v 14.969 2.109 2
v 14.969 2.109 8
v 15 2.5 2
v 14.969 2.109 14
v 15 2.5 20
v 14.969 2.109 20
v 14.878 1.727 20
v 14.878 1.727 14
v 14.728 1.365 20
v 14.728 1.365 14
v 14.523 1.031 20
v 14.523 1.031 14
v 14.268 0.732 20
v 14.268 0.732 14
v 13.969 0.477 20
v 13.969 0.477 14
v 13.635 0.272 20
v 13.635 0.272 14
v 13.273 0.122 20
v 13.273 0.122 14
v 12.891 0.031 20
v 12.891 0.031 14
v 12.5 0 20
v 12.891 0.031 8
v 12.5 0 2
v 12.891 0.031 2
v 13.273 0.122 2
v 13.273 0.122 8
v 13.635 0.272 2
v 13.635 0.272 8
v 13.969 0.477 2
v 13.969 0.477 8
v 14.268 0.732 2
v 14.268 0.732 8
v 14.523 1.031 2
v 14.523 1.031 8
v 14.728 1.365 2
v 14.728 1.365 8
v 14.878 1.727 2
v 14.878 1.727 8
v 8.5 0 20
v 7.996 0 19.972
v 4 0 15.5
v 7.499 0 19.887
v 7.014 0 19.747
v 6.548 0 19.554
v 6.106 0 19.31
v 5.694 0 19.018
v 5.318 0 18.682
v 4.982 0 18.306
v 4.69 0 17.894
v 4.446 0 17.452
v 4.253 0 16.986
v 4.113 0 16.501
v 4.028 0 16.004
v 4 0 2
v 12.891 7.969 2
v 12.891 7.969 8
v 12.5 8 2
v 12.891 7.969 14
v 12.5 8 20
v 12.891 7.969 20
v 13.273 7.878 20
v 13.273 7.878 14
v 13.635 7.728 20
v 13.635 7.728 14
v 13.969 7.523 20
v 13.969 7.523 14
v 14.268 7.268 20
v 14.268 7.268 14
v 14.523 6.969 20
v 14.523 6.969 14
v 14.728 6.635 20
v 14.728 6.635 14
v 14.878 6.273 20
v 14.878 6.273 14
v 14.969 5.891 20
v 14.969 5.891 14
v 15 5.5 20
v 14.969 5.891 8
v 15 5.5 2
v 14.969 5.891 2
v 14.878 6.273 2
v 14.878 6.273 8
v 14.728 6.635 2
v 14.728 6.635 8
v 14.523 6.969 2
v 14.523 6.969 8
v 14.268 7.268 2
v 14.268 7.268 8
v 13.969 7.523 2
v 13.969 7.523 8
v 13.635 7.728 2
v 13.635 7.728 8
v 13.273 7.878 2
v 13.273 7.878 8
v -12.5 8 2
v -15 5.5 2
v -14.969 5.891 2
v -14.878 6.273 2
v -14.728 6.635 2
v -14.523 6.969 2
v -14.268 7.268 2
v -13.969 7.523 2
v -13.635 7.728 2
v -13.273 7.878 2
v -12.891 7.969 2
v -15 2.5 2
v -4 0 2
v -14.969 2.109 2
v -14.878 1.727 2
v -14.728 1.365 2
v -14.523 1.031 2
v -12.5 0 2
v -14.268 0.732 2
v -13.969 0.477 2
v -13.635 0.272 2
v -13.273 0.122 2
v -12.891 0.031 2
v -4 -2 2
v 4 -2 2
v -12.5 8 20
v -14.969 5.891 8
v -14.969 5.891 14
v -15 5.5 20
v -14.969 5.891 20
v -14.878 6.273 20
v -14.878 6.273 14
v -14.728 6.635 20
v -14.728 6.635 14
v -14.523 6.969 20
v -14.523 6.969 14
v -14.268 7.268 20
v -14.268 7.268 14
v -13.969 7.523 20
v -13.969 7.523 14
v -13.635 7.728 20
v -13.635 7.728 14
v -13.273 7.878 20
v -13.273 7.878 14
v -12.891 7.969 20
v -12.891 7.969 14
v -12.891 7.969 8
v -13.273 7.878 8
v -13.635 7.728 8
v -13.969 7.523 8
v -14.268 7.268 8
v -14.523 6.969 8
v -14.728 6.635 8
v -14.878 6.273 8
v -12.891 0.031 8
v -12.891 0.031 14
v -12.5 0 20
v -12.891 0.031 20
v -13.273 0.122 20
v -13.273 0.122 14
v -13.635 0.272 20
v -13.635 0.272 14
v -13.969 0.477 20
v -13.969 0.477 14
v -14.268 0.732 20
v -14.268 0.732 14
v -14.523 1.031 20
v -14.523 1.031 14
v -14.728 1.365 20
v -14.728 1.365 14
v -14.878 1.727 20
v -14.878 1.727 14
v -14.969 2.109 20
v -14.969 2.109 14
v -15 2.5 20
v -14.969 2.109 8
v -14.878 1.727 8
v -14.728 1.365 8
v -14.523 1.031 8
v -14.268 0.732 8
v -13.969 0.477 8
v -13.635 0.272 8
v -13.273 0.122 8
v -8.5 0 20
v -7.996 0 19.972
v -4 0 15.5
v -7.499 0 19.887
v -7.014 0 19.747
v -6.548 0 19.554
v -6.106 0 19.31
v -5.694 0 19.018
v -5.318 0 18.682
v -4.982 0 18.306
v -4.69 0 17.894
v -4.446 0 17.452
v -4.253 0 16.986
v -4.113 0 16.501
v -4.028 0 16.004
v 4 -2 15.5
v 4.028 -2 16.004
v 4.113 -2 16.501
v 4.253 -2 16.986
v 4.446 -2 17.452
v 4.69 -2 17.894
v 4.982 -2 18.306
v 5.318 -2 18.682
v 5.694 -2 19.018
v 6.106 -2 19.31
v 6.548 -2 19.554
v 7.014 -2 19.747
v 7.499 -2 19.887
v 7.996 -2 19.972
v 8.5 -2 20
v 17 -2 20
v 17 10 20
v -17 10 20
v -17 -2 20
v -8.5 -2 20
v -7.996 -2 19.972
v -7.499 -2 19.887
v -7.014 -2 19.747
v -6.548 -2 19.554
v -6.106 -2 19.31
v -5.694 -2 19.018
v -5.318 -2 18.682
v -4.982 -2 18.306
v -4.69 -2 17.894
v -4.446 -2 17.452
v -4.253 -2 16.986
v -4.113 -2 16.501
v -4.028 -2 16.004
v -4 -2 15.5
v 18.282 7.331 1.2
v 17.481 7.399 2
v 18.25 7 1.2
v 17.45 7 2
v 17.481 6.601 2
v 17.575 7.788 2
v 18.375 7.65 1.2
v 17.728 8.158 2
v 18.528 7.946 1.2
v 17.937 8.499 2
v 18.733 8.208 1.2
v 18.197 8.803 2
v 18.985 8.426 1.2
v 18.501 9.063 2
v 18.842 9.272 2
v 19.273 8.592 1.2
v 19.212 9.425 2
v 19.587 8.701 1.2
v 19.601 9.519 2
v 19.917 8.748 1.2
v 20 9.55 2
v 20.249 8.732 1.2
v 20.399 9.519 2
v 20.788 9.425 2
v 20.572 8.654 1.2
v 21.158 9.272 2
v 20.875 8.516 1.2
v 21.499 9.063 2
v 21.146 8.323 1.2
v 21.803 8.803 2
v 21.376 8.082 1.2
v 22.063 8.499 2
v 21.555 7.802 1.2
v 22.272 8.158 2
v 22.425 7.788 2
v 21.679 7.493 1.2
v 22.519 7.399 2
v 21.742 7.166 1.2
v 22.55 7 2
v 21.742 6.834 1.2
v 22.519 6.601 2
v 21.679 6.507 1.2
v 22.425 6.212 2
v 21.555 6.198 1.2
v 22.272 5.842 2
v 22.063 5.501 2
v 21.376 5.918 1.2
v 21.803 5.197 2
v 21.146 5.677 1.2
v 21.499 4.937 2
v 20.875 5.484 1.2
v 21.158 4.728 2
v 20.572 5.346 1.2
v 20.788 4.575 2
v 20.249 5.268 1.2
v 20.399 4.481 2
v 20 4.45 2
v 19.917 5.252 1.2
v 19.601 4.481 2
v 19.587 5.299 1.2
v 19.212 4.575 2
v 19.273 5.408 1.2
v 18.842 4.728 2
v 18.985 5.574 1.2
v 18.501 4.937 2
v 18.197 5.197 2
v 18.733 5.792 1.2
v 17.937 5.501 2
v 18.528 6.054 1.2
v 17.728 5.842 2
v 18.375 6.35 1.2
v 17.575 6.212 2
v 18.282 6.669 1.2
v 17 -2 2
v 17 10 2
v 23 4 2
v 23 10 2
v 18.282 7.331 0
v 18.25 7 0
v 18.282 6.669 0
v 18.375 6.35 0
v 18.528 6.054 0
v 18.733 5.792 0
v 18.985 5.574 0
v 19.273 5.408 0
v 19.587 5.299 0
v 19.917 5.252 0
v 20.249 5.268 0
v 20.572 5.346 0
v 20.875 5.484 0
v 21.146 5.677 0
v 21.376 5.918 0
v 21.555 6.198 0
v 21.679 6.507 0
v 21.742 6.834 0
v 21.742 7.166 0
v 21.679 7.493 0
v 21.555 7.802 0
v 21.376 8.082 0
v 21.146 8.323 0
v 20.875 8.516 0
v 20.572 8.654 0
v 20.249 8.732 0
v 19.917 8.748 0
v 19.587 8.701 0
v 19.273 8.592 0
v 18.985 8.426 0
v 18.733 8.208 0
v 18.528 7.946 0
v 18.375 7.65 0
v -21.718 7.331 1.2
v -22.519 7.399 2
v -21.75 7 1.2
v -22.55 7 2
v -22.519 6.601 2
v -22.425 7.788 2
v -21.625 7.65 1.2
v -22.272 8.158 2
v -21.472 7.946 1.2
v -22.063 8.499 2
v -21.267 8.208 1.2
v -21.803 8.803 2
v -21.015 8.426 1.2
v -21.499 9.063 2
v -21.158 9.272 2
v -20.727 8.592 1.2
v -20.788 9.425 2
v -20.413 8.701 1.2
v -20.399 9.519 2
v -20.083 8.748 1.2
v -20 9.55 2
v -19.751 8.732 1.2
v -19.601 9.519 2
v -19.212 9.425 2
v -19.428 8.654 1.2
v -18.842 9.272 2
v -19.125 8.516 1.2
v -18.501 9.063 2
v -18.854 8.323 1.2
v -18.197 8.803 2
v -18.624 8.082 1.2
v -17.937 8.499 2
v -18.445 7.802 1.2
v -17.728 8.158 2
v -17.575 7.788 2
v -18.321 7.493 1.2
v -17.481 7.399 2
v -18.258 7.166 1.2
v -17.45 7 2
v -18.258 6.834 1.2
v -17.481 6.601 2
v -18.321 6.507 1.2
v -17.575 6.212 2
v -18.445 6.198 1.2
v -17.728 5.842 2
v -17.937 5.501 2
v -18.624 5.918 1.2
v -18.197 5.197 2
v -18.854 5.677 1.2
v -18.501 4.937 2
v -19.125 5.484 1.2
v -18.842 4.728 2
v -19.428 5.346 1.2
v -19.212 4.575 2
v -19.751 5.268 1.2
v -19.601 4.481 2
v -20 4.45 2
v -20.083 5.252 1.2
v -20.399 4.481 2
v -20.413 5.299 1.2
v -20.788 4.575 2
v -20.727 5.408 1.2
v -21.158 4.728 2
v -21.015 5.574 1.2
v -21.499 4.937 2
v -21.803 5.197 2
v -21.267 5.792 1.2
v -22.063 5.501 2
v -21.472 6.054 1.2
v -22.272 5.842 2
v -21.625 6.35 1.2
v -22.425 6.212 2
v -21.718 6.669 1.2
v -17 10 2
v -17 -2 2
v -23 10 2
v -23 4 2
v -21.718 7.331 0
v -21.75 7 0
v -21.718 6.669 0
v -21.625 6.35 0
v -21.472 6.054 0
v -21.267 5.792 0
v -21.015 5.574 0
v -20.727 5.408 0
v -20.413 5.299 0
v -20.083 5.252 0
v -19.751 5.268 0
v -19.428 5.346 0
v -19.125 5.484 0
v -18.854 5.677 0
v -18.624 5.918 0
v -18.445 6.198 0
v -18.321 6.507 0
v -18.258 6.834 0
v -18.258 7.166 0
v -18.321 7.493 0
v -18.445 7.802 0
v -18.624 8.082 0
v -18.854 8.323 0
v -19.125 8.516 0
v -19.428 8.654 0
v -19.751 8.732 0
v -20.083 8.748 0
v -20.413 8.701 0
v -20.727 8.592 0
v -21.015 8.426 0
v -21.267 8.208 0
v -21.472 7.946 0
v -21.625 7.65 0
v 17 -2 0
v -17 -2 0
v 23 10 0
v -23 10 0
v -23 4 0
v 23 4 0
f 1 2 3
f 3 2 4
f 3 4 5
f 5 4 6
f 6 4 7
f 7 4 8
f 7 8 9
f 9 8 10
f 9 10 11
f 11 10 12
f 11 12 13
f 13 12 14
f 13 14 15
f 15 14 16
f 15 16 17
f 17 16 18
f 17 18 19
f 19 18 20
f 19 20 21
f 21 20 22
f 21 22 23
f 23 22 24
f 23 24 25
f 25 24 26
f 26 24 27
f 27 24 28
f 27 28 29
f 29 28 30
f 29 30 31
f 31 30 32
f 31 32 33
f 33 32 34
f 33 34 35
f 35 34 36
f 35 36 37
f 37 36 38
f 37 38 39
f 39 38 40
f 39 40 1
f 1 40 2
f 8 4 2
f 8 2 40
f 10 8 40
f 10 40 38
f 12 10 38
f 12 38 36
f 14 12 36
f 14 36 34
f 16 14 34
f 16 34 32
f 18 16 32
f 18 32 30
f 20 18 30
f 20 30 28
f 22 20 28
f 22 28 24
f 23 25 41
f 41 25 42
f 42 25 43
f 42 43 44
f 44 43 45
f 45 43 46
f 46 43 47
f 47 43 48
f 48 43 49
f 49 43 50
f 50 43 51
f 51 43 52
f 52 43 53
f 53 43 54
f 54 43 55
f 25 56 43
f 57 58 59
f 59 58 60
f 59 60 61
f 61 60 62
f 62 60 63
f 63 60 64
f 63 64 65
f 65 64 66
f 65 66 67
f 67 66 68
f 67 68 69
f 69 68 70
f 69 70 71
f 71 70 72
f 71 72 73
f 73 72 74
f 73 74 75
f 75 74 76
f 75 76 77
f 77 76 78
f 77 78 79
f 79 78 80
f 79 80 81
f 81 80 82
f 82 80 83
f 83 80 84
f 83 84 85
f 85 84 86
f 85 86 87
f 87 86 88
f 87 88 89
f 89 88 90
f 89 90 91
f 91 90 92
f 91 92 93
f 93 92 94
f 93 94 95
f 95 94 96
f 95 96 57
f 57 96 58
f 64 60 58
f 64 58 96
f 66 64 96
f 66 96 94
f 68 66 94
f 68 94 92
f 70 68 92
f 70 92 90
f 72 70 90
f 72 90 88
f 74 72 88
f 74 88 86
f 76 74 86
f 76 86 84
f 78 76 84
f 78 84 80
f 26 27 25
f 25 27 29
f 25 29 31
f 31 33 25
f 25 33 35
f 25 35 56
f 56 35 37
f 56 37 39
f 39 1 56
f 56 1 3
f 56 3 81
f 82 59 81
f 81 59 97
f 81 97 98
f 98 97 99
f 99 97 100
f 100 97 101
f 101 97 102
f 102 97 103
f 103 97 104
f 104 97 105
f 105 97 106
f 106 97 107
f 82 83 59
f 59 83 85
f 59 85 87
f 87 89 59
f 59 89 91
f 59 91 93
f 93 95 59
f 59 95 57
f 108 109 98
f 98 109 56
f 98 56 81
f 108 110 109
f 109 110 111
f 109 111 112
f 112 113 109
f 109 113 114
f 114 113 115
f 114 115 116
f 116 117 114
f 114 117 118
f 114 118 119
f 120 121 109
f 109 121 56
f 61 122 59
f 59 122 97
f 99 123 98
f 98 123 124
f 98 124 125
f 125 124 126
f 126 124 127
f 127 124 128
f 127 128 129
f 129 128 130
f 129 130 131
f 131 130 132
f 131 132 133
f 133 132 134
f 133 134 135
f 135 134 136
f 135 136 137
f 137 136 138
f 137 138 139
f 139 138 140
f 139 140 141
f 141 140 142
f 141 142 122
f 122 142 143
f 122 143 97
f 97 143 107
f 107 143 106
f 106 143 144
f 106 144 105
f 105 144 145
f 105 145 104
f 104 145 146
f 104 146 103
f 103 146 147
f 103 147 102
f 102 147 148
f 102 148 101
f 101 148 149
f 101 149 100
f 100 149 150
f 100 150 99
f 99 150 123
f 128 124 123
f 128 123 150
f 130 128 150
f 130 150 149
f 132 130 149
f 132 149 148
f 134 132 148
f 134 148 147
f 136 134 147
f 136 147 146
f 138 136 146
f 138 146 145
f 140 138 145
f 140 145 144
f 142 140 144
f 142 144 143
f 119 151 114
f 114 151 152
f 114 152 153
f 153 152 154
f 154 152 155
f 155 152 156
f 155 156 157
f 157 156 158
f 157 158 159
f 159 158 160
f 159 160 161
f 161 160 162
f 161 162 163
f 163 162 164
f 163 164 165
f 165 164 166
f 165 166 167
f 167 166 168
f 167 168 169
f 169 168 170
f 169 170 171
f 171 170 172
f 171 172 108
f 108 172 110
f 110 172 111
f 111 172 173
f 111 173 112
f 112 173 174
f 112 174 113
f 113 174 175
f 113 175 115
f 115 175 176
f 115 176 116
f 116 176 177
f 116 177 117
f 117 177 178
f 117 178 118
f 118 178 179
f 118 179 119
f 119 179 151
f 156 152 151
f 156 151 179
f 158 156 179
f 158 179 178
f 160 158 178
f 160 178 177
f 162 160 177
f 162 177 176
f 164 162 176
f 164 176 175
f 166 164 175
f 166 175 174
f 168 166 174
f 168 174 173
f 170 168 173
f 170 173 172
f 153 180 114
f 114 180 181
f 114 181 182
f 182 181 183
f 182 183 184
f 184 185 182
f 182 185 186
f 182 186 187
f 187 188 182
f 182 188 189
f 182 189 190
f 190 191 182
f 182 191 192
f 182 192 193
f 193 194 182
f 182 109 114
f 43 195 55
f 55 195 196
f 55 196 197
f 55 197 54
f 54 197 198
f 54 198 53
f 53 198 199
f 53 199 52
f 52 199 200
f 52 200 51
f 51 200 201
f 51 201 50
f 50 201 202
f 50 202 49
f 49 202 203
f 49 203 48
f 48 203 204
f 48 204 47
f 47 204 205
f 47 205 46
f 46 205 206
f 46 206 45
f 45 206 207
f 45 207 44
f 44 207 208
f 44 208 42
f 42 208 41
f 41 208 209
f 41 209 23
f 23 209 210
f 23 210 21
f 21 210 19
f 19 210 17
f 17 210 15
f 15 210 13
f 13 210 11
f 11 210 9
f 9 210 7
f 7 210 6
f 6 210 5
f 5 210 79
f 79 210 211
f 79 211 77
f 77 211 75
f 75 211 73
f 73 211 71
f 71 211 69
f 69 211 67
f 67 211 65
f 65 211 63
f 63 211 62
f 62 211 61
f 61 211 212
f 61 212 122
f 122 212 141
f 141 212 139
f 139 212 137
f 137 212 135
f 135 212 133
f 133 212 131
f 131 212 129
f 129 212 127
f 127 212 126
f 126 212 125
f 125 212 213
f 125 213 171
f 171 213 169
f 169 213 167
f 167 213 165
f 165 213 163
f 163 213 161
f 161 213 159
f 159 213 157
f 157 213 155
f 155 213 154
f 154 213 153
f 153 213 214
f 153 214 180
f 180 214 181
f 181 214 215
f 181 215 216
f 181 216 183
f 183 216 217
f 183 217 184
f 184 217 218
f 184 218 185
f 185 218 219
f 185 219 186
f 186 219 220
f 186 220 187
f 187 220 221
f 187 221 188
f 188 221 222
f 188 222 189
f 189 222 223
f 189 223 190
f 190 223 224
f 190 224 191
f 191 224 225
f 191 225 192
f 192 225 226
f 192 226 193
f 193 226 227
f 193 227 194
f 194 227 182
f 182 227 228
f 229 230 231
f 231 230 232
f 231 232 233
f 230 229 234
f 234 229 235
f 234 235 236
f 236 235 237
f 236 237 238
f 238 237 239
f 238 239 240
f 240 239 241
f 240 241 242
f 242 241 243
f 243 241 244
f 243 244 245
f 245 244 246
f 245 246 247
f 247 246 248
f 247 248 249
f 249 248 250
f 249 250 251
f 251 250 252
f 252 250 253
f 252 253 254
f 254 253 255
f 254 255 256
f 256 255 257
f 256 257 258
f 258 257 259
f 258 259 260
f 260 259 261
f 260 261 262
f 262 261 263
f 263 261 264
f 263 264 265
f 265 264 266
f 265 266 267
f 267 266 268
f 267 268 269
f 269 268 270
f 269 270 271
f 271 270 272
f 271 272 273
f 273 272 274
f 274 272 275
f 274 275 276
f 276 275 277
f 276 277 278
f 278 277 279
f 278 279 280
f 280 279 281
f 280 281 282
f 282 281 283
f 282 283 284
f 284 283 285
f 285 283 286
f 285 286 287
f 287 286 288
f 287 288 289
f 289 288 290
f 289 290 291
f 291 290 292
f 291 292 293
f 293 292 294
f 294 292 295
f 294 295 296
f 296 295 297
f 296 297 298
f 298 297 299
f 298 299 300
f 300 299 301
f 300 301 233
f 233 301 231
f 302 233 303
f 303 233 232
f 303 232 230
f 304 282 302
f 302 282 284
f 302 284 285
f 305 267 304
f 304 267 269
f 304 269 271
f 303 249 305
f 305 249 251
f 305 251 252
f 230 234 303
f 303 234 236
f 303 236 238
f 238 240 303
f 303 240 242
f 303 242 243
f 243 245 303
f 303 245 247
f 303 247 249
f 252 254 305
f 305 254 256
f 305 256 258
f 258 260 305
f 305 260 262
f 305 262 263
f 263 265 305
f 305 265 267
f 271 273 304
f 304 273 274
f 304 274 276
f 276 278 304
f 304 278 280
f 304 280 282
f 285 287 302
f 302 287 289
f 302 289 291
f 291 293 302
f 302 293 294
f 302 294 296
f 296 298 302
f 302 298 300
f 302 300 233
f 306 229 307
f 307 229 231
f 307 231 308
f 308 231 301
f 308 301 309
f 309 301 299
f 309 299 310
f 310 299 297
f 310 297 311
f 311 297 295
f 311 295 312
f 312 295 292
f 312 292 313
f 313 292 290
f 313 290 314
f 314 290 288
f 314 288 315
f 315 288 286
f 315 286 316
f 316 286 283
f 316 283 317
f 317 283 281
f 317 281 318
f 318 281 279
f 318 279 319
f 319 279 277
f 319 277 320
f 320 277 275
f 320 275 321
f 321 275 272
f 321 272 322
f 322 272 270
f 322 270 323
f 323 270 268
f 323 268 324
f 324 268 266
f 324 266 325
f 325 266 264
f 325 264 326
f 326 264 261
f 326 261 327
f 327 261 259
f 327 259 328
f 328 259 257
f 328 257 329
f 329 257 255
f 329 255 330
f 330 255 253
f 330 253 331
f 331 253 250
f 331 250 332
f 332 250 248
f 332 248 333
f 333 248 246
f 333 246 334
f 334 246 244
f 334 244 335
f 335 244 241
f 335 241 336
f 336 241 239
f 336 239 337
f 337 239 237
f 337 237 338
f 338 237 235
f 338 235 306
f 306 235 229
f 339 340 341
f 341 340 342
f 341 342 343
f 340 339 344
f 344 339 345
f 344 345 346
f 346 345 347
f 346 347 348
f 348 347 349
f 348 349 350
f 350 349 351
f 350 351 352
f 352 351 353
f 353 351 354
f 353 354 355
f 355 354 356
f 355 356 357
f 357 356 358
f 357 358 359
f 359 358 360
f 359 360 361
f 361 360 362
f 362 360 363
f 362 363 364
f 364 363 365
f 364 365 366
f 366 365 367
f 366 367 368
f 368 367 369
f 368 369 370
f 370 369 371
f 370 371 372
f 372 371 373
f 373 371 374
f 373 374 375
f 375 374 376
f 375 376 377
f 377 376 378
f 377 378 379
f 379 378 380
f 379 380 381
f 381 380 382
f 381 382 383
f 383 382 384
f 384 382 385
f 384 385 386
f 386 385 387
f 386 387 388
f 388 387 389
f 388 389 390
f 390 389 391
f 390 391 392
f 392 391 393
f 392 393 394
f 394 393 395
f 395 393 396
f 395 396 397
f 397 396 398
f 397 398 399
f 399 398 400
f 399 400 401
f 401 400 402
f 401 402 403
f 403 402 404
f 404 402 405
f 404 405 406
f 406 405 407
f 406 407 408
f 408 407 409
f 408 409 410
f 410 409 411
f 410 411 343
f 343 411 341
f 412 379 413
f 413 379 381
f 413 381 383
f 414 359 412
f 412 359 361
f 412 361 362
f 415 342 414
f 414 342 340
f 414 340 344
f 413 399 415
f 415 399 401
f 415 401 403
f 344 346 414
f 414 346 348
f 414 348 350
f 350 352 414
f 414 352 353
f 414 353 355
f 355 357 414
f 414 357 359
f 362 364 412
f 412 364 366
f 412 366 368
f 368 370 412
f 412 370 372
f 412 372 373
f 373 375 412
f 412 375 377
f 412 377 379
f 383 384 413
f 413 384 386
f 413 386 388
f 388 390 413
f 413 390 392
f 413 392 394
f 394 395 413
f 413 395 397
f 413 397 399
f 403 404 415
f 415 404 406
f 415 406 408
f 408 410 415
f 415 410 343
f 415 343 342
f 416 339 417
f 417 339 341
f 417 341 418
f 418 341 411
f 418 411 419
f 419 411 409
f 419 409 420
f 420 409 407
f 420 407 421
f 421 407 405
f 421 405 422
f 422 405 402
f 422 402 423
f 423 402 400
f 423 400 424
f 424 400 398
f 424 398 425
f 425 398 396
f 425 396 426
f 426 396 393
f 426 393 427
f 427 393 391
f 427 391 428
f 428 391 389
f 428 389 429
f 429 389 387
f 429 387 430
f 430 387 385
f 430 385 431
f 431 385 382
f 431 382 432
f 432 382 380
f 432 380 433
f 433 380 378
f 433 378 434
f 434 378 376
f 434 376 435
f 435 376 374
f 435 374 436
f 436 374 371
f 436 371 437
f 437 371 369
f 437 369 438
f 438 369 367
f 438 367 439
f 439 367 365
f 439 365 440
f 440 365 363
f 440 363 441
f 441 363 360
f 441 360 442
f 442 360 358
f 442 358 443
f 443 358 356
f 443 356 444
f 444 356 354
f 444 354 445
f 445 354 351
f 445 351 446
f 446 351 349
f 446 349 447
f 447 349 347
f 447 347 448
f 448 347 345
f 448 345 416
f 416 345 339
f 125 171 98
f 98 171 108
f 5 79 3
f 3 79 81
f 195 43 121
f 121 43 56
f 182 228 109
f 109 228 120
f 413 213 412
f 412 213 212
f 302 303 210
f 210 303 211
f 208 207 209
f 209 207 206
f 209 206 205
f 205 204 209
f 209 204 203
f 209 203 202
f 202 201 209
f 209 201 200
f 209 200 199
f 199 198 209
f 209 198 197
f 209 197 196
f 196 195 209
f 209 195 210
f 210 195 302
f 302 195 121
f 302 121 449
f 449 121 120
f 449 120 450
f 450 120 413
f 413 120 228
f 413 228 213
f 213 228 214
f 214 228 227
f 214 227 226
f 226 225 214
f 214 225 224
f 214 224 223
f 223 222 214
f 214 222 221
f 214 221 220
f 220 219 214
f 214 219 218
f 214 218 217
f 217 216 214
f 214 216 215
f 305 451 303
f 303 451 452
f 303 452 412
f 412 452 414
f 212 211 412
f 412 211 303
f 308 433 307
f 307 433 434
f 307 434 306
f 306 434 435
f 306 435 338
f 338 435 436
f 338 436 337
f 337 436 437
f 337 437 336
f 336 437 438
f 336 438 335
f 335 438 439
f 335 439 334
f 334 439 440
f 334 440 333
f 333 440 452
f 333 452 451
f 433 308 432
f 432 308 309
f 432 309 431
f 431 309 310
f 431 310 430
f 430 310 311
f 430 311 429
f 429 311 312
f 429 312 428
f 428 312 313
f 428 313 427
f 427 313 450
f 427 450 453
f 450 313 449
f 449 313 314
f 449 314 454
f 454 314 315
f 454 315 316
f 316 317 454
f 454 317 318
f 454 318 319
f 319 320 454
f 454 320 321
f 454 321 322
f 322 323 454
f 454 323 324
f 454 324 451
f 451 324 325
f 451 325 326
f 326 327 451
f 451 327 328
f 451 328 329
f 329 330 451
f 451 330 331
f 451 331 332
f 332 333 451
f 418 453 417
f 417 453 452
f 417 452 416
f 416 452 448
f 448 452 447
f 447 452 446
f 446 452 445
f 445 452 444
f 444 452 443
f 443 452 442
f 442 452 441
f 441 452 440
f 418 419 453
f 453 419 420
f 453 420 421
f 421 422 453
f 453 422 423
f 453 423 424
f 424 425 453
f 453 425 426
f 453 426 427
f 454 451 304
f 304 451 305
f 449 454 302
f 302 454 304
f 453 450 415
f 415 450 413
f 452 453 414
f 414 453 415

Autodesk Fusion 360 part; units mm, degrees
sketch "Sketch1" plane through (0, 0, 0) normal (0, 0, 1) x (1, 0, 0)
  line L0 (4, 2) -> (-4, 2)
  line L1 (-4, 2) -> (-4, -2)
  line L2 (-4, -2) -> (4, -2)
  line L3 (4, -2) -> (4, 2)
  line L4 (4, 2) -> (-4, -2) construction
  line L5 (-4, 2) -> (4, -2) construction
  line L6 (-4, -2) -> (-17, -2)
  line L7 (-17, -2) -> (-17, 10)
  line L8 (-17, 10) -> (0, 10)
  line L9 (-4, 0) -> (-15, 0)
  line L10 (-15, 0) -> (-15, 8)
  line L11 (-15, 8) -> (0, 8)
  line L12 (0, 1.75) -> (0, 22.5)
  line L13 (15, 8) -> (0, 8)
  line L14 (17, 10) -> (0, 10)
  line L15 (17, -2) -> (17, 10)
  line L16 (15, 0) -> (15, 8)
  line L17 (4, 0) -> (15, 0)
  line L18 (4, -2) -> (17, -2)
  line L19 (-17, 10) -> (-23, 10)
  line L20 (-23, 10) -> (-23, 4)
  line L21 (-17, -2) -> (-17, 10)
  circle A0 centre (-20, 7) radius 1.75
  line L22 (-23, 4) -> (-17, -2)
  line L23 (17, 10) -> (23, 10)
  line L24 (23, 10) -> (23, 4)
  line L25 (23, 4) -> (17, -2)
  circle A1 centre (20, 7) radius 1.75
  dimension "d1" = 8
  dimension "d2" = 4
  dimension "d9" = 3.5
extrude "Extrude1" add sketch "Sketch1" along normal blind 2
extrude "Extrude2" add sketch "Sketch1" along normal blind 20 contours L3 L12 L13 L14 L15 L16 L17 L18 | L1 L6 L7 L8 L9 L10 L11 L12 L21
chamfer "Chamfer1" distance 0.8 angle 45 2 edges at (-21.6316, 7.6328, 2) (18.3684, 7.6328, 2)
fillet "Fillet2" radius 4.5 2 edges at (-4, -1, 20) (4, -1, 20)
fillet "Fillet3" radius 2.5 4 edges at (-15, 0, 11) (-15, 8, 11) (15, 8, 11) (15, 0, 11)
